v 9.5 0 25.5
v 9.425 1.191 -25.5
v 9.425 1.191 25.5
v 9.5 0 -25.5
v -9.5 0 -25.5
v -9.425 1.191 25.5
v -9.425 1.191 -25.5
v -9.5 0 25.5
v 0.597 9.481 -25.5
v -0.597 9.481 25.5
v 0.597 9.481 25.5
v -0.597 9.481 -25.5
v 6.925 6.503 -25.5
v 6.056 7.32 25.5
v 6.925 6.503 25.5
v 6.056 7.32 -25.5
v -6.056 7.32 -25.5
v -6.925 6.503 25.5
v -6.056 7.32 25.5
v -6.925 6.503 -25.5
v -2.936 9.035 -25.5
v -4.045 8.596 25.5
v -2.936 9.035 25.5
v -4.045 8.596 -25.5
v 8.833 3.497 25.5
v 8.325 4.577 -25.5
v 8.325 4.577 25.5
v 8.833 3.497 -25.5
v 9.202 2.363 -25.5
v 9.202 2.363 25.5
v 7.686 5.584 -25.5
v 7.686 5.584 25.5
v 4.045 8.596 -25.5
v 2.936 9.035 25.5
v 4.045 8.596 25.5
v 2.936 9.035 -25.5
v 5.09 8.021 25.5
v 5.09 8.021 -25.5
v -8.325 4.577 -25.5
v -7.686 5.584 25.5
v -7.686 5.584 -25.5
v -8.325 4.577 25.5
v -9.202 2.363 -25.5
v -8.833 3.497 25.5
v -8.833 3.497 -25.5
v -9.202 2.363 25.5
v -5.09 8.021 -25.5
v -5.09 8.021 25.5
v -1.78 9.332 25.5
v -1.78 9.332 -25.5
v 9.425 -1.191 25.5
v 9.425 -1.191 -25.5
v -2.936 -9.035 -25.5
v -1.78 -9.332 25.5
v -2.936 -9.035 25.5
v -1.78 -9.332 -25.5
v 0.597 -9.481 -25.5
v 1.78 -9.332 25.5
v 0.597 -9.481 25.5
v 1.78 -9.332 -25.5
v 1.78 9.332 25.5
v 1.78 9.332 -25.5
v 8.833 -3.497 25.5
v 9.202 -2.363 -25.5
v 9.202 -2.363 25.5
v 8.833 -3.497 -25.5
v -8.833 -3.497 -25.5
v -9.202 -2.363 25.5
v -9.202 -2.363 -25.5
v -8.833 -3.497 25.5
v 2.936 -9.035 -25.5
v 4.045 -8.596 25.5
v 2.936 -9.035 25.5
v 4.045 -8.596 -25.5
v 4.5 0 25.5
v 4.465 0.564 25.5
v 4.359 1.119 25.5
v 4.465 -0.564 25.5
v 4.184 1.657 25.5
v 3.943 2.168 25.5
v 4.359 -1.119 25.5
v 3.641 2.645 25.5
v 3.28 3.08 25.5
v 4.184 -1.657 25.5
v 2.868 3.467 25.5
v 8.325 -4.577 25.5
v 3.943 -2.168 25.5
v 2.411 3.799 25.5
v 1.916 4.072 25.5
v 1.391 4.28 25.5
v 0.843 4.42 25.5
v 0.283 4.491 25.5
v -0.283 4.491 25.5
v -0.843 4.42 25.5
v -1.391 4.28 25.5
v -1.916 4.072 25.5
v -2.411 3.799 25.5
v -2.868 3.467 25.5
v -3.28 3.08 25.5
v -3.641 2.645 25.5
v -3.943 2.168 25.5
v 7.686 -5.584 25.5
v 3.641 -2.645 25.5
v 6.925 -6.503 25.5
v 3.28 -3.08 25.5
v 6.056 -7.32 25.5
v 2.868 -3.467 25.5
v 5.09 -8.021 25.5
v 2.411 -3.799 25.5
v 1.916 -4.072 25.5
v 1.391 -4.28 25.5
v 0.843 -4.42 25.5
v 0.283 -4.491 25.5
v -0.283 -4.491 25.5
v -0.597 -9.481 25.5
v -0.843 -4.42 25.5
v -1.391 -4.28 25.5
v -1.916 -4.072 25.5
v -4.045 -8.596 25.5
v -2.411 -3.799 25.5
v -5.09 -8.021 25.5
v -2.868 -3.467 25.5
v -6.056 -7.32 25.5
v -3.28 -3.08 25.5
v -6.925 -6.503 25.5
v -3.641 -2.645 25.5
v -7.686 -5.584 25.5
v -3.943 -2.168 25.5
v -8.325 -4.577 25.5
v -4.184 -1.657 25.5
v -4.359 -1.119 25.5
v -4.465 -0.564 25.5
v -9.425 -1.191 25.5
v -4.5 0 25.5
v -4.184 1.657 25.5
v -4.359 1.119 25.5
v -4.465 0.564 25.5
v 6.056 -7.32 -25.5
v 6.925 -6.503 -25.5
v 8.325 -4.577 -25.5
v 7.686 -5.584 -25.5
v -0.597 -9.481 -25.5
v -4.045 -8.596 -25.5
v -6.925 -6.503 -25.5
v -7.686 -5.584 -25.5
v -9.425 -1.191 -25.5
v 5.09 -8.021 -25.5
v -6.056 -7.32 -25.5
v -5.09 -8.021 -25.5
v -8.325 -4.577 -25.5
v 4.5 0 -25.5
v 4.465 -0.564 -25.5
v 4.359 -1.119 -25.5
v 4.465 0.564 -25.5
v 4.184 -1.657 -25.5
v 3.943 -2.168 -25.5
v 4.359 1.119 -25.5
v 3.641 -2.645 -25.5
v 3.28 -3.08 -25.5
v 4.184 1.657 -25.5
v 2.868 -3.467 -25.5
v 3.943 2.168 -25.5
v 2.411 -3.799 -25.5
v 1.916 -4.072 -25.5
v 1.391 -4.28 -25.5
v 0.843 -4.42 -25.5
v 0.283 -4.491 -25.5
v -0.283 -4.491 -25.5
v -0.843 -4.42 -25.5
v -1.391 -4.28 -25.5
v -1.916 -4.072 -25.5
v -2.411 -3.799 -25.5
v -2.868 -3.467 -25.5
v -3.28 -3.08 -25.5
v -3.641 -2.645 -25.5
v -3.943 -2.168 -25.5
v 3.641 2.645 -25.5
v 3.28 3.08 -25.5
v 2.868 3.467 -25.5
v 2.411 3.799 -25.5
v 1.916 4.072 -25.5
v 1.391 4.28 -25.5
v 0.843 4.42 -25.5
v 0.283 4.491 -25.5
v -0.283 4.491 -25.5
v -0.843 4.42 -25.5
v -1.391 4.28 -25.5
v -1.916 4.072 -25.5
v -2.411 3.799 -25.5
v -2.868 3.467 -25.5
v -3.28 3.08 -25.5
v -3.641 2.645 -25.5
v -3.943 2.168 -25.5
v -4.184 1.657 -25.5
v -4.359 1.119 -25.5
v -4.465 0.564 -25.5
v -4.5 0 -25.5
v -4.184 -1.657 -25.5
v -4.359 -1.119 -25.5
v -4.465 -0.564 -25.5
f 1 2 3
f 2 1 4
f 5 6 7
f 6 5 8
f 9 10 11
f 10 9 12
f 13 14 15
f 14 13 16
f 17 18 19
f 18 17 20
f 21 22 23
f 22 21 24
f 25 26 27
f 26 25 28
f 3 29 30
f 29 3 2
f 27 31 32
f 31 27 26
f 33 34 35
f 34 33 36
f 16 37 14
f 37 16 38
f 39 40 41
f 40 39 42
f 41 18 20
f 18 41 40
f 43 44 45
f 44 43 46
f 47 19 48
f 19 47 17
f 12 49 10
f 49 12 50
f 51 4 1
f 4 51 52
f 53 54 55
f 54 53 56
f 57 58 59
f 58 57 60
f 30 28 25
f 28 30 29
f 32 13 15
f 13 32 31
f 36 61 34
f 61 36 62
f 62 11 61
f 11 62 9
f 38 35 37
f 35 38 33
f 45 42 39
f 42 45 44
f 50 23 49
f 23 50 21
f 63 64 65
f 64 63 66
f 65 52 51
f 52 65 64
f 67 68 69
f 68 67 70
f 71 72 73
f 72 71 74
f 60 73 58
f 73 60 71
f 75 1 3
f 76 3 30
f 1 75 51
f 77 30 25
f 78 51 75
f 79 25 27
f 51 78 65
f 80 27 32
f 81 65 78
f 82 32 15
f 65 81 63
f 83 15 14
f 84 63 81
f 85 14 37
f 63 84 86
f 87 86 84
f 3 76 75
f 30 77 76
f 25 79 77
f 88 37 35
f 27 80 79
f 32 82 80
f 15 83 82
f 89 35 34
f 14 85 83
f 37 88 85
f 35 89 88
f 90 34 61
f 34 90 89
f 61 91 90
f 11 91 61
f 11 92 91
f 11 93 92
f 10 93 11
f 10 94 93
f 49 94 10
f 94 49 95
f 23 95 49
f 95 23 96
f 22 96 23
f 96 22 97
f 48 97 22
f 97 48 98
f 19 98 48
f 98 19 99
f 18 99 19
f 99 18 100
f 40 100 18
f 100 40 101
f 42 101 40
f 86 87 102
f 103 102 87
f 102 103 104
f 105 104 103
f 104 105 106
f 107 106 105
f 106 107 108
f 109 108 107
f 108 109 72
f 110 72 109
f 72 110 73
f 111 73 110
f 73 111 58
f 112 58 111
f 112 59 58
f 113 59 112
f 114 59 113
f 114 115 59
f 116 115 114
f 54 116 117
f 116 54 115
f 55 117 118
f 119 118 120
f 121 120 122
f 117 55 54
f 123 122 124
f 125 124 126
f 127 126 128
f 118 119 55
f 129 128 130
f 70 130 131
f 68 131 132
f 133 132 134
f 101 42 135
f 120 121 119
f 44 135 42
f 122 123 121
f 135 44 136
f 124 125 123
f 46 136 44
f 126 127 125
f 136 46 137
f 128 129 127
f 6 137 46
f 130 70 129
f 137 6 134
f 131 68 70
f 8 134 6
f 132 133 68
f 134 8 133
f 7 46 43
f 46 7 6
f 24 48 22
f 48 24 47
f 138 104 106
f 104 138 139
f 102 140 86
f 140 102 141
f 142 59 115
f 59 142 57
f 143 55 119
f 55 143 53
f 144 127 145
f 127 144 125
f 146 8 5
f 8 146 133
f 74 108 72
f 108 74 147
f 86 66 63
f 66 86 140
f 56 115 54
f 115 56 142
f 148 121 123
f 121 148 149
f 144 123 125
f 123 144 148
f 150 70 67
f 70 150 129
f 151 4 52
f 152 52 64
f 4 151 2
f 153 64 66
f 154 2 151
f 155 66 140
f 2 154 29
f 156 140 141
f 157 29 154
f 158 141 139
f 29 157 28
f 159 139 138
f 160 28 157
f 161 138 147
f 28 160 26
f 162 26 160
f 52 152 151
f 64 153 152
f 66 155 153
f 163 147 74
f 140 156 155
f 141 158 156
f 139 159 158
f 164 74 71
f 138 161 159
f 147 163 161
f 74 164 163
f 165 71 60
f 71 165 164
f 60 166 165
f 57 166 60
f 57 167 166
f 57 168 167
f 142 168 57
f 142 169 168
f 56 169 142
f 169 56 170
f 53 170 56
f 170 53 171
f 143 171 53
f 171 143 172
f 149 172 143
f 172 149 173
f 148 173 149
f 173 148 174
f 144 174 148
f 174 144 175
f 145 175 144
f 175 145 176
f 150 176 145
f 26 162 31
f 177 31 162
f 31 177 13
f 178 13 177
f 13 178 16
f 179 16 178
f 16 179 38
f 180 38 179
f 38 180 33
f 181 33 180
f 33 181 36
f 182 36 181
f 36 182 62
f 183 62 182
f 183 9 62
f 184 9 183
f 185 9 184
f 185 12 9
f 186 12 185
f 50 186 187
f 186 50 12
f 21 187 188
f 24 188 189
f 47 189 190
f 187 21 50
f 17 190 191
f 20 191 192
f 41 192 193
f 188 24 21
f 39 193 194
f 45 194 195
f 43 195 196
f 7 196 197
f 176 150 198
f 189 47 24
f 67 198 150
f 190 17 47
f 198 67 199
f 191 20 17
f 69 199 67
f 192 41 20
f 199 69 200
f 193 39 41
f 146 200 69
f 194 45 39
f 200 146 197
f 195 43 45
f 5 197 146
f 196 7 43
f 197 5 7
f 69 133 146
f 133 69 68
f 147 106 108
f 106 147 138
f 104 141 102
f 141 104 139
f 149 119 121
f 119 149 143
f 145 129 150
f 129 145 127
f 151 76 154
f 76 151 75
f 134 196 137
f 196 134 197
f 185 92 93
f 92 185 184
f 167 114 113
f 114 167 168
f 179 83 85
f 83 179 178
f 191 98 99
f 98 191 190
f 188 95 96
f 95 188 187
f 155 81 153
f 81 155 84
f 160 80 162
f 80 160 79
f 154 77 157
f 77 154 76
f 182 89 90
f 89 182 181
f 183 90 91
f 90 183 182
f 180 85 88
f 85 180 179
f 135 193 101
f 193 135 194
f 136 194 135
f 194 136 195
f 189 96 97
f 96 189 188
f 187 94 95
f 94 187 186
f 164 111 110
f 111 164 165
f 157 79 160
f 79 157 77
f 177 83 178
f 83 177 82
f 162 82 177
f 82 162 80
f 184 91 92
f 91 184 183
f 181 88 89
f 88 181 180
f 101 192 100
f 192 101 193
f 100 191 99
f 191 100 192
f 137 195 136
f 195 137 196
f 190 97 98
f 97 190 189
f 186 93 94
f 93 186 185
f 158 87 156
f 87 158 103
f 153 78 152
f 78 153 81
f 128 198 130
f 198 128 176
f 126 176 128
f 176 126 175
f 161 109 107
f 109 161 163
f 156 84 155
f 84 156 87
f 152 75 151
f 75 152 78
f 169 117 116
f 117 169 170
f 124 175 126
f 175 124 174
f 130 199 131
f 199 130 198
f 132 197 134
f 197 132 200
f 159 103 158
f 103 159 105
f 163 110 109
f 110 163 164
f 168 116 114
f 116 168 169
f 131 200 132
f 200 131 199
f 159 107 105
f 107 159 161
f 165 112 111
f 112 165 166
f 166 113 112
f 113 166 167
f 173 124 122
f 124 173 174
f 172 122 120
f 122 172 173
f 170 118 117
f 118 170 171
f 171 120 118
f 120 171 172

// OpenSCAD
$fn = 50;


difference() {
	union() {
		translate(v = [0, 0, -25.5000000000]) {
			cylinder(h = 51, r = 9.5000000000);
		}
	}
	union() {
		translate(v = [0, 0, -100.0000000000]) {
			cylinder(h = 200, r = 4.5000000000);
		}
	}
}
